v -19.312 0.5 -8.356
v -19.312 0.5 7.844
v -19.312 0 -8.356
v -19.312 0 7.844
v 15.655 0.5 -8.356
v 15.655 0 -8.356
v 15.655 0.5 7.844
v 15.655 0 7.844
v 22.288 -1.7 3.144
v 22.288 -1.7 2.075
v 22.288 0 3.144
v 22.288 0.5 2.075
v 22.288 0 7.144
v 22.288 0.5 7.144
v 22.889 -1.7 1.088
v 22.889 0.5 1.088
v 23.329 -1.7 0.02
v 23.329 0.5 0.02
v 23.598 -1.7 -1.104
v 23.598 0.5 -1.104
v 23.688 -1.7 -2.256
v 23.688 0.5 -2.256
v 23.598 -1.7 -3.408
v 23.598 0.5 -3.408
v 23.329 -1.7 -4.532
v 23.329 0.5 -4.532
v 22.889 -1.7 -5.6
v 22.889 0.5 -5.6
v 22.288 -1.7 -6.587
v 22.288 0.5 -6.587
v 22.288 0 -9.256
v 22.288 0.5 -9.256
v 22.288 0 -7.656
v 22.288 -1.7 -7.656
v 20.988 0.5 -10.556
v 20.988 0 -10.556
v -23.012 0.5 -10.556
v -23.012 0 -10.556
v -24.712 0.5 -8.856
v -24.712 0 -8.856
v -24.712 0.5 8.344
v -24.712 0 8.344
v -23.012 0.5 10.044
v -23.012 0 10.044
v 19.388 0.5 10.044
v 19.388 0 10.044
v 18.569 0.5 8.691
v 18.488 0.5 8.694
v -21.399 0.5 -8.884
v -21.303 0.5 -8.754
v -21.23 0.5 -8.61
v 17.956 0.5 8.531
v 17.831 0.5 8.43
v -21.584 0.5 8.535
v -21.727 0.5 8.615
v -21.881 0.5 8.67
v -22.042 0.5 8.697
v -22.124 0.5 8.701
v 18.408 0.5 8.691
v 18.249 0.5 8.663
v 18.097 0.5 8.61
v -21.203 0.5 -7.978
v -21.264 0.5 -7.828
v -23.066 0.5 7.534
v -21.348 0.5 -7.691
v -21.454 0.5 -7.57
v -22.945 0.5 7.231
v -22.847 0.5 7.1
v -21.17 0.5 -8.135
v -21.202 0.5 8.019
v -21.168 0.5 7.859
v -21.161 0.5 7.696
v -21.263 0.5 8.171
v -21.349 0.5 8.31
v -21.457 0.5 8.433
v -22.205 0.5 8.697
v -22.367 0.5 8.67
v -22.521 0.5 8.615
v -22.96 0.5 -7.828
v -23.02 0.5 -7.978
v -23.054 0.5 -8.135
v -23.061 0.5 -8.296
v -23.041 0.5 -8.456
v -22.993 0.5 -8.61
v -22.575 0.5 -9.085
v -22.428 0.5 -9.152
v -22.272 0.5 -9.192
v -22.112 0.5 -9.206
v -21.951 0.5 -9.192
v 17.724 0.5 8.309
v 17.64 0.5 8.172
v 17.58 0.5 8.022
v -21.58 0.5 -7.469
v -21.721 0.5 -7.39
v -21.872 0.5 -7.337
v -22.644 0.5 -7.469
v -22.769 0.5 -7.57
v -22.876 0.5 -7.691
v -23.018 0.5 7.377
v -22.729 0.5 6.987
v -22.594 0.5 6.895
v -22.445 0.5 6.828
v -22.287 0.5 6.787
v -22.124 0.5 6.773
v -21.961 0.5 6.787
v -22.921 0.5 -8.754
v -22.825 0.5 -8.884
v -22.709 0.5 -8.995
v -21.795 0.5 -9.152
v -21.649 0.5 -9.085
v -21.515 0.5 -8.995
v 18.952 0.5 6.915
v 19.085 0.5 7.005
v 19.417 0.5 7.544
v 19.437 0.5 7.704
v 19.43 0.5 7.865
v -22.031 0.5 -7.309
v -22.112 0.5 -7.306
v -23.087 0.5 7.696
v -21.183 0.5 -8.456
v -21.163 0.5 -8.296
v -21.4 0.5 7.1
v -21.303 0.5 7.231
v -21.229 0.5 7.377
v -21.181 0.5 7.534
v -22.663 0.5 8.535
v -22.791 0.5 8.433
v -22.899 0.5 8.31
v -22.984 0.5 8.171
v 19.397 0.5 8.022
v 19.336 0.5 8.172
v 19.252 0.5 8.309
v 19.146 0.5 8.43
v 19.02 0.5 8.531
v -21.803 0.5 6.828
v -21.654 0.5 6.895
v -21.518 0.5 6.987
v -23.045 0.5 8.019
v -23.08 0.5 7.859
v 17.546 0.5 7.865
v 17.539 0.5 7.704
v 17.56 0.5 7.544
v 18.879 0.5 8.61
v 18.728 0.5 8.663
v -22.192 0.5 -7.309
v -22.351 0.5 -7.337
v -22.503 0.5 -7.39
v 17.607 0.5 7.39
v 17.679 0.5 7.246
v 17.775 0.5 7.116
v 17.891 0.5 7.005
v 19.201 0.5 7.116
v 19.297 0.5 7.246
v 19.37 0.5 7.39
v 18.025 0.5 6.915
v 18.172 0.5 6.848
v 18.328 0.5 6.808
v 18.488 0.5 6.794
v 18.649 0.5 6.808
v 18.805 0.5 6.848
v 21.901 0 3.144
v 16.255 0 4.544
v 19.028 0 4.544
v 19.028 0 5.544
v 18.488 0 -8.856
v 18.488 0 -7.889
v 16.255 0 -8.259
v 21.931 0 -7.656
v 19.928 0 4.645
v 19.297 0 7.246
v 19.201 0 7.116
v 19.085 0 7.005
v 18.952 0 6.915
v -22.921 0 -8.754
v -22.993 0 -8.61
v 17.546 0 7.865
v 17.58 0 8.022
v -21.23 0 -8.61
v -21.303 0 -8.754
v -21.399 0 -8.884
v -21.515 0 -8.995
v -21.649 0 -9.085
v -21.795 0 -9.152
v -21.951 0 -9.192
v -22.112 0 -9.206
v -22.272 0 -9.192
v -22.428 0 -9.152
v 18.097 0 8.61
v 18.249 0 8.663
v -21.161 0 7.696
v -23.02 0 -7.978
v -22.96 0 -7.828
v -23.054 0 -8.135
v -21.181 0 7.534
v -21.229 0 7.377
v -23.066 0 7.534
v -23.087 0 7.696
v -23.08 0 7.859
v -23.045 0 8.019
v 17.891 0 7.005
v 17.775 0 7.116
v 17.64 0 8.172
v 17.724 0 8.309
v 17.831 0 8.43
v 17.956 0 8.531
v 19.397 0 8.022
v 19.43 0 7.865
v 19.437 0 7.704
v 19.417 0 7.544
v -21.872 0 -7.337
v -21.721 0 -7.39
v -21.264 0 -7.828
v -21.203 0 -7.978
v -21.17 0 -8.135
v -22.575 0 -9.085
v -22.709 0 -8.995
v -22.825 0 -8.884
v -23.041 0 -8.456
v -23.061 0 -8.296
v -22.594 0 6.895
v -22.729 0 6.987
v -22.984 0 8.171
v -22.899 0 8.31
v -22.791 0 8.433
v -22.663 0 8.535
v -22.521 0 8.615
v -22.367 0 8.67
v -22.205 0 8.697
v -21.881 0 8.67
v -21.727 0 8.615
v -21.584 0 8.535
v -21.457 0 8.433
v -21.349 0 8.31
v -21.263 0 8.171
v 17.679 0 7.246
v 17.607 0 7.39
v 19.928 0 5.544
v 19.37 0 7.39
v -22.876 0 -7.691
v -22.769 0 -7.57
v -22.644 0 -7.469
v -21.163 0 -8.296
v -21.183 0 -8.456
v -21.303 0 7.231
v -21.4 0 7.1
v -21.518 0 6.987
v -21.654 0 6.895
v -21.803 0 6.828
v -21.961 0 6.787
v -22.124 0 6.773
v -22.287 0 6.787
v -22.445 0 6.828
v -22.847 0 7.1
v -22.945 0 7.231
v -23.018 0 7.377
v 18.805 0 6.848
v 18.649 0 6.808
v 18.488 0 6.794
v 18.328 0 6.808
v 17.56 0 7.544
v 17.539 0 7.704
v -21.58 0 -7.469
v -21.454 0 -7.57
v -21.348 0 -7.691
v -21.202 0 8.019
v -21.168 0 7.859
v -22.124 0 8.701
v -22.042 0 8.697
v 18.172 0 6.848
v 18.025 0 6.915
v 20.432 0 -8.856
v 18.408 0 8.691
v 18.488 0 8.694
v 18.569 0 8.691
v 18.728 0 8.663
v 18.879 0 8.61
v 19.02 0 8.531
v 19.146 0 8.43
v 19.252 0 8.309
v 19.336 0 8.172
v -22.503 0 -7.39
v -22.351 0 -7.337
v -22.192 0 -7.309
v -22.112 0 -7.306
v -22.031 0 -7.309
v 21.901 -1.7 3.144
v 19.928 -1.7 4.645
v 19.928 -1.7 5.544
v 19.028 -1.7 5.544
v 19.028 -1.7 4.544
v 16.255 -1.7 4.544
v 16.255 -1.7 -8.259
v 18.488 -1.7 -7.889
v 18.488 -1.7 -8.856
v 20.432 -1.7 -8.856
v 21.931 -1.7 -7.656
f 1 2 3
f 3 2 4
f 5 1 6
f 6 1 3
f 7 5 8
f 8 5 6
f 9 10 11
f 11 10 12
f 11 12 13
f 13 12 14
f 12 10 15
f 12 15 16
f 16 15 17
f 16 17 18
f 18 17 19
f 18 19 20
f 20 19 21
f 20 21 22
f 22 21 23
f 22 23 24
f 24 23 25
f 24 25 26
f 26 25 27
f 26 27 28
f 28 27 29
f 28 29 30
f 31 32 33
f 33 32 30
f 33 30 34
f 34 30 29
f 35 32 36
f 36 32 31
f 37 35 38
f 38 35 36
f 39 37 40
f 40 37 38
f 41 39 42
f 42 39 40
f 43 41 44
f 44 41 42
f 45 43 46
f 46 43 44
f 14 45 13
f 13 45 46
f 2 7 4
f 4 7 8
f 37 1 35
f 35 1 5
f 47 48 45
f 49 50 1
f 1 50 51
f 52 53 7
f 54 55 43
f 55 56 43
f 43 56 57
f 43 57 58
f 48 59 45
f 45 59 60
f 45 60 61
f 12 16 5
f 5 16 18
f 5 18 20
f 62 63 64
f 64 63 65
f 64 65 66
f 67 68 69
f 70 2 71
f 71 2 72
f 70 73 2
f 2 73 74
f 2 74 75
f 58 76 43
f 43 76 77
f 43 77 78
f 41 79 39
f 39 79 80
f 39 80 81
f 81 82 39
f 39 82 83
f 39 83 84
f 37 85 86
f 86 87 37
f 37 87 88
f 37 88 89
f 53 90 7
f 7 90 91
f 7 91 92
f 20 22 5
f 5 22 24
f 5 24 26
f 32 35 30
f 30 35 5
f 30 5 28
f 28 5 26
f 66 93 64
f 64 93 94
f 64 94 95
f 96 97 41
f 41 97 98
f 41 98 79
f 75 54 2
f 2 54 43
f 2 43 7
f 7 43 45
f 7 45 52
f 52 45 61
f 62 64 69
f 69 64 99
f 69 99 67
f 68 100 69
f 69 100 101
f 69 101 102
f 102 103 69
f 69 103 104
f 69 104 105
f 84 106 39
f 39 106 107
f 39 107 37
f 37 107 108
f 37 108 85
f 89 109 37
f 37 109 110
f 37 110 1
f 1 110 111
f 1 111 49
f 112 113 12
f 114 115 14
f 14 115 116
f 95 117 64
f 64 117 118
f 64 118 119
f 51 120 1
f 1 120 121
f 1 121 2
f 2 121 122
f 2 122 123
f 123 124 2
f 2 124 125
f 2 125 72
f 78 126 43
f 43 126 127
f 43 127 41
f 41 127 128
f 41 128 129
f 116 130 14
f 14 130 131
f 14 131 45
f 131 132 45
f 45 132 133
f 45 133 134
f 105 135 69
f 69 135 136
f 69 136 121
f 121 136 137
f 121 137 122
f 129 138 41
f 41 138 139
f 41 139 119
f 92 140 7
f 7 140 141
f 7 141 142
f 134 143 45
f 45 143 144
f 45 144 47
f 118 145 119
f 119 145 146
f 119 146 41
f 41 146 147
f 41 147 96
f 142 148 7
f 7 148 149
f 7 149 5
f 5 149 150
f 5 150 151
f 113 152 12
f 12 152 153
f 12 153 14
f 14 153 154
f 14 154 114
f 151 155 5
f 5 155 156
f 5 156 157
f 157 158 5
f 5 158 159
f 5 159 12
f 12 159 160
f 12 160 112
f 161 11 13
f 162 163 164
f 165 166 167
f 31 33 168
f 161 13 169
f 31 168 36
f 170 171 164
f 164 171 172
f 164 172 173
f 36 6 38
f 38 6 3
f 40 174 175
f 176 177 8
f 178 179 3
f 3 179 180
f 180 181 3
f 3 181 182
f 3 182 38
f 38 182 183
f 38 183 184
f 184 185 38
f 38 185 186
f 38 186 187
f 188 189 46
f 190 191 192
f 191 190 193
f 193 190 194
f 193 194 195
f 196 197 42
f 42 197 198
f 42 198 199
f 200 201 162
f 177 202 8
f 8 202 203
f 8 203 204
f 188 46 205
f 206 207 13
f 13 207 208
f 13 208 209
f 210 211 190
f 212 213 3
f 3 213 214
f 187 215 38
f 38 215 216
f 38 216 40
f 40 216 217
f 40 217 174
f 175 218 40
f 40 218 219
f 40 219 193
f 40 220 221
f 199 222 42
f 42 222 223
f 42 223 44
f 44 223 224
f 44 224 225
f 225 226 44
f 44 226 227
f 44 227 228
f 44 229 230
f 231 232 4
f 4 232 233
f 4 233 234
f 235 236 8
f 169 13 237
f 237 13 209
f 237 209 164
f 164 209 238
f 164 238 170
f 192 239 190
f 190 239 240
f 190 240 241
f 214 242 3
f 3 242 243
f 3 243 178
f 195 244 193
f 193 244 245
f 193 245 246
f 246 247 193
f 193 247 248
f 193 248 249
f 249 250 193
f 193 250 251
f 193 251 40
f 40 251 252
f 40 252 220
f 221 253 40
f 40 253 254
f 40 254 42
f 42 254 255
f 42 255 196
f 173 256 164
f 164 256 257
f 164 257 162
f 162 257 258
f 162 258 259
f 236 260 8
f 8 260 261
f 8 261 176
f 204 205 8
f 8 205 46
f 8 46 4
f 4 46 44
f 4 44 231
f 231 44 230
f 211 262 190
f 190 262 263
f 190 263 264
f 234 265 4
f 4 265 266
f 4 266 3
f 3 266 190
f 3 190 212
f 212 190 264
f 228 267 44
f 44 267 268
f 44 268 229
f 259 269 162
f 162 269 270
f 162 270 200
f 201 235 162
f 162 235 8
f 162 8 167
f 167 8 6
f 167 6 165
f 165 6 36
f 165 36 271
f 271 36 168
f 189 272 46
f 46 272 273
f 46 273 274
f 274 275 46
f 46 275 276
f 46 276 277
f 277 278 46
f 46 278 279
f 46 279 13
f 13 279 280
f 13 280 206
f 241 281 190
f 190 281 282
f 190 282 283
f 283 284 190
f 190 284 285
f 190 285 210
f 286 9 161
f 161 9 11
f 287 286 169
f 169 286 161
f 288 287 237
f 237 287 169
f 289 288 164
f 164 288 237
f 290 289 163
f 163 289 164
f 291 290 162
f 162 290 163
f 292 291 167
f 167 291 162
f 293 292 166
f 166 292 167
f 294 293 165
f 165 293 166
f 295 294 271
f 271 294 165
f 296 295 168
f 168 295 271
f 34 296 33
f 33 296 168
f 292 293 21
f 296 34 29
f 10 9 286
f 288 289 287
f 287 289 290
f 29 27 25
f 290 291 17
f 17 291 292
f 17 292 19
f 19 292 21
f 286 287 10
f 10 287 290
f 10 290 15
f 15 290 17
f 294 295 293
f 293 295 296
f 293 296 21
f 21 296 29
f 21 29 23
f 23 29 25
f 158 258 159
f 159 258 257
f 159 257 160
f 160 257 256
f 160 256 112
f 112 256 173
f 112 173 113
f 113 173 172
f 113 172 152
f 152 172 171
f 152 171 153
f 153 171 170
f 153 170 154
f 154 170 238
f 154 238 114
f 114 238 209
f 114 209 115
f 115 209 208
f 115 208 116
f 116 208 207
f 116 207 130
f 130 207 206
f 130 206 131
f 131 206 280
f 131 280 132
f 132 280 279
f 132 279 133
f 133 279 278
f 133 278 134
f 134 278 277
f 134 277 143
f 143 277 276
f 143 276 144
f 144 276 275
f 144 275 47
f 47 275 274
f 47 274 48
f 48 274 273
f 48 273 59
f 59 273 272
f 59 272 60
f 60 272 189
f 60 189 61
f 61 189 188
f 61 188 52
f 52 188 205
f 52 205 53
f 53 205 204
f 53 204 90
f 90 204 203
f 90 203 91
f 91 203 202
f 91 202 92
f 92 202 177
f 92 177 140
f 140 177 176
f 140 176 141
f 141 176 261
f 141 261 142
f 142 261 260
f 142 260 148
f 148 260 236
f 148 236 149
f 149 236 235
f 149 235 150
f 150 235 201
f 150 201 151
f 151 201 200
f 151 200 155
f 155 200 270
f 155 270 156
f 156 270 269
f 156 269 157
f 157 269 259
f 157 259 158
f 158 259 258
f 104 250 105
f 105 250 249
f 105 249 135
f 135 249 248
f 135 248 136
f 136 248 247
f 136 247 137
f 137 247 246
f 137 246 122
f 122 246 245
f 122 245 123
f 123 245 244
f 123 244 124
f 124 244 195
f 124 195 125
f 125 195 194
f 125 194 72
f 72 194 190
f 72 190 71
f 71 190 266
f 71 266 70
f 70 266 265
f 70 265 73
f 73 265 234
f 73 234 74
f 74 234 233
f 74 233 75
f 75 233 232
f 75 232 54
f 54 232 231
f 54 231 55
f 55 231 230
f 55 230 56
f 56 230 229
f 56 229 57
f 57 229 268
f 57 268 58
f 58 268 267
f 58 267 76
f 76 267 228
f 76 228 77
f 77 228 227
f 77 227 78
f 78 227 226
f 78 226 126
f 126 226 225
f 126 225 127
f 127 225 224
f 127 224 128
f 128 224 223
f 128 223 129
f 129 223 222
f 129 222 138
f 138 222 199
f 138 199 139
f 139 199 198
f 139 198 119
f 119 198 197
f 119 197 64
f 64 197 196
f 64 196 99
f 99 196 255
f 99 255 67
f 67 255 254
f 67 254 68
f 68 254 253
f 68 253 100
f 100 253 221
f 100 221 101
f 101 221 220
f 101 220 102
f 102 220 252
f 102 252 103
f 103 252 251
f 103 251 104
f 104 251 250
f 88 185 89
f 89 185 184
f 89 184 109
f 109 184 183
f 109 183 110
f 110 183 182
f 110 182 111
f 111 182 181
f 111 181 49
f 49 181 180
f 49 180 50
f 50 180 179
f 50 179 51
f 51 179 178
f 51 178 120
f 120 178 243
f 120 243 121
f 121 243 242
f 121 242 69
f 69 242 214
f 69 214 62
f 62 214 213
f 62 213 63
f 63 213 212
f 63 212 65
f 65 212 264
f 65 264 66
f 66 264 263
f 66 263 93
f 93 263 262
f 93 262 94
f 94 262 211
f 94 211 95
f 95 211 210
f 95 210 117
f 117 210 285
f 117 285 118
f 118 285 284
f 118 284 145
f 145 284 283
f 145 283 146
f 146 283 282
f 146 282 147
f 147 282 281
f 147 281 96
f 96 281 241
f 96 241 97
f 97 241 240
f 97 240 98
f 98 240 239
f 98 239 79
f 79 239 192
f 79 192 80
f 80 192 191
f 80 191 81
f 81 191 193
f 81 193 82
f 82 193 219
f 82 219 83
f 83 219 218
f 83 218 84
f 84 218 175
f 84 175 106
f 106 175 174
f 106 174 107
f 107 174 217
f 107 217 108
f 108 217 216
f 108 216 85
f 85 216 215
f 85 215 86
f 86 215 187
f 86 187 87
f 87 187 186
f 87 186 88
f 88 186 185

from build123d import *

# Parameters (mm, degrees)
SKETCH_1_W          = 34.967301983
SKETCH_1_H          = 16.2
EXTRUDE_1_DEPTH     = 0.5
EXTRUDE_START       = -1.7
EXTRUDE_2_DEPTH     = 1.7
SKETCH_2_R          = 0.950019994
SKETCH_2_R_2        = 0.963923892
SKETCH_2_R_3        = 0.95
CUT_EXTRUDE_4_DEPTH = 27.925670861


with BuildPart() as part:
    # Эскиз1 → Бобышка-Вытянуть1 (new body)
    with BuildSketch(Plane(origin=(0, 0, 0), x_dir=(1, 0, 0), z_dir=(0, 1, 0))):
        with BuildLine():
            Line((22.288172203, 9.255913898), (20.988172203, 10.555913898))
            Line((20.988172203, 10.555913898), (-23.011827797, 10.555913898))
            Line((-23.011827797, 10.555913898), (-24.711827797, 8.855913898))
            Line((-24.711827797, 8.855913898), (-24.711827797, -8.344086102))
            Line((-24.711827797, -8.344086102), (-23.011827797, -10.044086102))
            Line((-23.011827797, -10.044086102), (19.388172203, -10.044086102))
            Line((19.388172203, -10.044086102), (22.288172203, -7.144086102))
            Line((22.288172203, -7.144086102), (22.288172203, -2.075367667))
            ThreePointArc((22.288172203, -2.075367667), (23.688172203, 2.255913898), (22.288172203, 6.587195464))
            Line((22.288172203, 6.587195464), (22.288172203, 9.255913898))
        make_face()
        with Locations((-1.828176806, 0.255913898)):
            Rectangle(SKETCH_1_W, SKETCH_1_H, mode=Mode.SUBTRACT)
    extrude(amount=EXTRUDE_1_DEPTH)

    # Эскиз1<3> → Бобышка-Вытянуть2 (add)
    with BuildSketch(Plane(origin=(0, 0, 0), x_dir=(1, 0, 0), z_dir=(0, 1, 0)).offset(EXTRUDE_START)):
        with BuildLine():
            Line((22.288172203, 6.587195464), (22.288172203, 7.655913898))
            Line((22.288172203, 7.655913898), (21.931117854, 7.655913898))
            Line((21.931117854, 7.655913898), (20.432236612, 8.855913898))
            Line((20.432236612, 8.855913898), (18.488172203, 8.855913898))
            Line((18.488172203, 8.855913898), (18.488172203, 7.888602523))
            Line((18.488172203, 7.888602523), (16.255474186, 8.258604903))
            Line((16.255474186, 8.258604903), (16.255474186, -4.544086102))
            Line((16.255474186, -4.544086102), (19.028457532, -4.544086102))
            Line((19.028457532, -4.544086102), (19.028457532, -5.544086102))
            Line((19.028457532, -5.544086102), (19.928457532, -5.544086102))
            Line((19.928457532, -5.544086102), (19.928457532, -4.644944449))
            Line((19.928457532, -4.644944449), (21.901185097, -3.144086102))
            Line((21.901185097, -3.144086102), (22.288172203, -3.144086102))
            Line((22.288172203, -3.144086102), (22.288172203, -2.075367667))
            ThreePointArc((22.288172203, -2.075367667), (23.688172203, 2.255913898), (22.288172203, 6.587195464))
        make_face()
    extrude(amount=EXTRUDE_2_DEPTH)

    # Эскиз2 → Вырез-Вытянуть4 (cut, through all)
    with BuildSketch(Plane(origin=(0, 0, 0), x_dir=(1, 0, 0), z_dir=(0, 1, 0))):
        with Locations((-22.111827797, 8.255913898)):
            Circle(SKETCH_2_R)
        with Locations((-22.123719351, -7.736880442)):
            Circle(SKETCH_2_R_2)
        with Locations((18.488191089, -7.744092667)):
            Circle(SKETCH_2_R_3)
    extrude(amount=CUT_EXTRUDE_4_DEPTH, mode=Mode.SUBTRACT)


solid = part.part
